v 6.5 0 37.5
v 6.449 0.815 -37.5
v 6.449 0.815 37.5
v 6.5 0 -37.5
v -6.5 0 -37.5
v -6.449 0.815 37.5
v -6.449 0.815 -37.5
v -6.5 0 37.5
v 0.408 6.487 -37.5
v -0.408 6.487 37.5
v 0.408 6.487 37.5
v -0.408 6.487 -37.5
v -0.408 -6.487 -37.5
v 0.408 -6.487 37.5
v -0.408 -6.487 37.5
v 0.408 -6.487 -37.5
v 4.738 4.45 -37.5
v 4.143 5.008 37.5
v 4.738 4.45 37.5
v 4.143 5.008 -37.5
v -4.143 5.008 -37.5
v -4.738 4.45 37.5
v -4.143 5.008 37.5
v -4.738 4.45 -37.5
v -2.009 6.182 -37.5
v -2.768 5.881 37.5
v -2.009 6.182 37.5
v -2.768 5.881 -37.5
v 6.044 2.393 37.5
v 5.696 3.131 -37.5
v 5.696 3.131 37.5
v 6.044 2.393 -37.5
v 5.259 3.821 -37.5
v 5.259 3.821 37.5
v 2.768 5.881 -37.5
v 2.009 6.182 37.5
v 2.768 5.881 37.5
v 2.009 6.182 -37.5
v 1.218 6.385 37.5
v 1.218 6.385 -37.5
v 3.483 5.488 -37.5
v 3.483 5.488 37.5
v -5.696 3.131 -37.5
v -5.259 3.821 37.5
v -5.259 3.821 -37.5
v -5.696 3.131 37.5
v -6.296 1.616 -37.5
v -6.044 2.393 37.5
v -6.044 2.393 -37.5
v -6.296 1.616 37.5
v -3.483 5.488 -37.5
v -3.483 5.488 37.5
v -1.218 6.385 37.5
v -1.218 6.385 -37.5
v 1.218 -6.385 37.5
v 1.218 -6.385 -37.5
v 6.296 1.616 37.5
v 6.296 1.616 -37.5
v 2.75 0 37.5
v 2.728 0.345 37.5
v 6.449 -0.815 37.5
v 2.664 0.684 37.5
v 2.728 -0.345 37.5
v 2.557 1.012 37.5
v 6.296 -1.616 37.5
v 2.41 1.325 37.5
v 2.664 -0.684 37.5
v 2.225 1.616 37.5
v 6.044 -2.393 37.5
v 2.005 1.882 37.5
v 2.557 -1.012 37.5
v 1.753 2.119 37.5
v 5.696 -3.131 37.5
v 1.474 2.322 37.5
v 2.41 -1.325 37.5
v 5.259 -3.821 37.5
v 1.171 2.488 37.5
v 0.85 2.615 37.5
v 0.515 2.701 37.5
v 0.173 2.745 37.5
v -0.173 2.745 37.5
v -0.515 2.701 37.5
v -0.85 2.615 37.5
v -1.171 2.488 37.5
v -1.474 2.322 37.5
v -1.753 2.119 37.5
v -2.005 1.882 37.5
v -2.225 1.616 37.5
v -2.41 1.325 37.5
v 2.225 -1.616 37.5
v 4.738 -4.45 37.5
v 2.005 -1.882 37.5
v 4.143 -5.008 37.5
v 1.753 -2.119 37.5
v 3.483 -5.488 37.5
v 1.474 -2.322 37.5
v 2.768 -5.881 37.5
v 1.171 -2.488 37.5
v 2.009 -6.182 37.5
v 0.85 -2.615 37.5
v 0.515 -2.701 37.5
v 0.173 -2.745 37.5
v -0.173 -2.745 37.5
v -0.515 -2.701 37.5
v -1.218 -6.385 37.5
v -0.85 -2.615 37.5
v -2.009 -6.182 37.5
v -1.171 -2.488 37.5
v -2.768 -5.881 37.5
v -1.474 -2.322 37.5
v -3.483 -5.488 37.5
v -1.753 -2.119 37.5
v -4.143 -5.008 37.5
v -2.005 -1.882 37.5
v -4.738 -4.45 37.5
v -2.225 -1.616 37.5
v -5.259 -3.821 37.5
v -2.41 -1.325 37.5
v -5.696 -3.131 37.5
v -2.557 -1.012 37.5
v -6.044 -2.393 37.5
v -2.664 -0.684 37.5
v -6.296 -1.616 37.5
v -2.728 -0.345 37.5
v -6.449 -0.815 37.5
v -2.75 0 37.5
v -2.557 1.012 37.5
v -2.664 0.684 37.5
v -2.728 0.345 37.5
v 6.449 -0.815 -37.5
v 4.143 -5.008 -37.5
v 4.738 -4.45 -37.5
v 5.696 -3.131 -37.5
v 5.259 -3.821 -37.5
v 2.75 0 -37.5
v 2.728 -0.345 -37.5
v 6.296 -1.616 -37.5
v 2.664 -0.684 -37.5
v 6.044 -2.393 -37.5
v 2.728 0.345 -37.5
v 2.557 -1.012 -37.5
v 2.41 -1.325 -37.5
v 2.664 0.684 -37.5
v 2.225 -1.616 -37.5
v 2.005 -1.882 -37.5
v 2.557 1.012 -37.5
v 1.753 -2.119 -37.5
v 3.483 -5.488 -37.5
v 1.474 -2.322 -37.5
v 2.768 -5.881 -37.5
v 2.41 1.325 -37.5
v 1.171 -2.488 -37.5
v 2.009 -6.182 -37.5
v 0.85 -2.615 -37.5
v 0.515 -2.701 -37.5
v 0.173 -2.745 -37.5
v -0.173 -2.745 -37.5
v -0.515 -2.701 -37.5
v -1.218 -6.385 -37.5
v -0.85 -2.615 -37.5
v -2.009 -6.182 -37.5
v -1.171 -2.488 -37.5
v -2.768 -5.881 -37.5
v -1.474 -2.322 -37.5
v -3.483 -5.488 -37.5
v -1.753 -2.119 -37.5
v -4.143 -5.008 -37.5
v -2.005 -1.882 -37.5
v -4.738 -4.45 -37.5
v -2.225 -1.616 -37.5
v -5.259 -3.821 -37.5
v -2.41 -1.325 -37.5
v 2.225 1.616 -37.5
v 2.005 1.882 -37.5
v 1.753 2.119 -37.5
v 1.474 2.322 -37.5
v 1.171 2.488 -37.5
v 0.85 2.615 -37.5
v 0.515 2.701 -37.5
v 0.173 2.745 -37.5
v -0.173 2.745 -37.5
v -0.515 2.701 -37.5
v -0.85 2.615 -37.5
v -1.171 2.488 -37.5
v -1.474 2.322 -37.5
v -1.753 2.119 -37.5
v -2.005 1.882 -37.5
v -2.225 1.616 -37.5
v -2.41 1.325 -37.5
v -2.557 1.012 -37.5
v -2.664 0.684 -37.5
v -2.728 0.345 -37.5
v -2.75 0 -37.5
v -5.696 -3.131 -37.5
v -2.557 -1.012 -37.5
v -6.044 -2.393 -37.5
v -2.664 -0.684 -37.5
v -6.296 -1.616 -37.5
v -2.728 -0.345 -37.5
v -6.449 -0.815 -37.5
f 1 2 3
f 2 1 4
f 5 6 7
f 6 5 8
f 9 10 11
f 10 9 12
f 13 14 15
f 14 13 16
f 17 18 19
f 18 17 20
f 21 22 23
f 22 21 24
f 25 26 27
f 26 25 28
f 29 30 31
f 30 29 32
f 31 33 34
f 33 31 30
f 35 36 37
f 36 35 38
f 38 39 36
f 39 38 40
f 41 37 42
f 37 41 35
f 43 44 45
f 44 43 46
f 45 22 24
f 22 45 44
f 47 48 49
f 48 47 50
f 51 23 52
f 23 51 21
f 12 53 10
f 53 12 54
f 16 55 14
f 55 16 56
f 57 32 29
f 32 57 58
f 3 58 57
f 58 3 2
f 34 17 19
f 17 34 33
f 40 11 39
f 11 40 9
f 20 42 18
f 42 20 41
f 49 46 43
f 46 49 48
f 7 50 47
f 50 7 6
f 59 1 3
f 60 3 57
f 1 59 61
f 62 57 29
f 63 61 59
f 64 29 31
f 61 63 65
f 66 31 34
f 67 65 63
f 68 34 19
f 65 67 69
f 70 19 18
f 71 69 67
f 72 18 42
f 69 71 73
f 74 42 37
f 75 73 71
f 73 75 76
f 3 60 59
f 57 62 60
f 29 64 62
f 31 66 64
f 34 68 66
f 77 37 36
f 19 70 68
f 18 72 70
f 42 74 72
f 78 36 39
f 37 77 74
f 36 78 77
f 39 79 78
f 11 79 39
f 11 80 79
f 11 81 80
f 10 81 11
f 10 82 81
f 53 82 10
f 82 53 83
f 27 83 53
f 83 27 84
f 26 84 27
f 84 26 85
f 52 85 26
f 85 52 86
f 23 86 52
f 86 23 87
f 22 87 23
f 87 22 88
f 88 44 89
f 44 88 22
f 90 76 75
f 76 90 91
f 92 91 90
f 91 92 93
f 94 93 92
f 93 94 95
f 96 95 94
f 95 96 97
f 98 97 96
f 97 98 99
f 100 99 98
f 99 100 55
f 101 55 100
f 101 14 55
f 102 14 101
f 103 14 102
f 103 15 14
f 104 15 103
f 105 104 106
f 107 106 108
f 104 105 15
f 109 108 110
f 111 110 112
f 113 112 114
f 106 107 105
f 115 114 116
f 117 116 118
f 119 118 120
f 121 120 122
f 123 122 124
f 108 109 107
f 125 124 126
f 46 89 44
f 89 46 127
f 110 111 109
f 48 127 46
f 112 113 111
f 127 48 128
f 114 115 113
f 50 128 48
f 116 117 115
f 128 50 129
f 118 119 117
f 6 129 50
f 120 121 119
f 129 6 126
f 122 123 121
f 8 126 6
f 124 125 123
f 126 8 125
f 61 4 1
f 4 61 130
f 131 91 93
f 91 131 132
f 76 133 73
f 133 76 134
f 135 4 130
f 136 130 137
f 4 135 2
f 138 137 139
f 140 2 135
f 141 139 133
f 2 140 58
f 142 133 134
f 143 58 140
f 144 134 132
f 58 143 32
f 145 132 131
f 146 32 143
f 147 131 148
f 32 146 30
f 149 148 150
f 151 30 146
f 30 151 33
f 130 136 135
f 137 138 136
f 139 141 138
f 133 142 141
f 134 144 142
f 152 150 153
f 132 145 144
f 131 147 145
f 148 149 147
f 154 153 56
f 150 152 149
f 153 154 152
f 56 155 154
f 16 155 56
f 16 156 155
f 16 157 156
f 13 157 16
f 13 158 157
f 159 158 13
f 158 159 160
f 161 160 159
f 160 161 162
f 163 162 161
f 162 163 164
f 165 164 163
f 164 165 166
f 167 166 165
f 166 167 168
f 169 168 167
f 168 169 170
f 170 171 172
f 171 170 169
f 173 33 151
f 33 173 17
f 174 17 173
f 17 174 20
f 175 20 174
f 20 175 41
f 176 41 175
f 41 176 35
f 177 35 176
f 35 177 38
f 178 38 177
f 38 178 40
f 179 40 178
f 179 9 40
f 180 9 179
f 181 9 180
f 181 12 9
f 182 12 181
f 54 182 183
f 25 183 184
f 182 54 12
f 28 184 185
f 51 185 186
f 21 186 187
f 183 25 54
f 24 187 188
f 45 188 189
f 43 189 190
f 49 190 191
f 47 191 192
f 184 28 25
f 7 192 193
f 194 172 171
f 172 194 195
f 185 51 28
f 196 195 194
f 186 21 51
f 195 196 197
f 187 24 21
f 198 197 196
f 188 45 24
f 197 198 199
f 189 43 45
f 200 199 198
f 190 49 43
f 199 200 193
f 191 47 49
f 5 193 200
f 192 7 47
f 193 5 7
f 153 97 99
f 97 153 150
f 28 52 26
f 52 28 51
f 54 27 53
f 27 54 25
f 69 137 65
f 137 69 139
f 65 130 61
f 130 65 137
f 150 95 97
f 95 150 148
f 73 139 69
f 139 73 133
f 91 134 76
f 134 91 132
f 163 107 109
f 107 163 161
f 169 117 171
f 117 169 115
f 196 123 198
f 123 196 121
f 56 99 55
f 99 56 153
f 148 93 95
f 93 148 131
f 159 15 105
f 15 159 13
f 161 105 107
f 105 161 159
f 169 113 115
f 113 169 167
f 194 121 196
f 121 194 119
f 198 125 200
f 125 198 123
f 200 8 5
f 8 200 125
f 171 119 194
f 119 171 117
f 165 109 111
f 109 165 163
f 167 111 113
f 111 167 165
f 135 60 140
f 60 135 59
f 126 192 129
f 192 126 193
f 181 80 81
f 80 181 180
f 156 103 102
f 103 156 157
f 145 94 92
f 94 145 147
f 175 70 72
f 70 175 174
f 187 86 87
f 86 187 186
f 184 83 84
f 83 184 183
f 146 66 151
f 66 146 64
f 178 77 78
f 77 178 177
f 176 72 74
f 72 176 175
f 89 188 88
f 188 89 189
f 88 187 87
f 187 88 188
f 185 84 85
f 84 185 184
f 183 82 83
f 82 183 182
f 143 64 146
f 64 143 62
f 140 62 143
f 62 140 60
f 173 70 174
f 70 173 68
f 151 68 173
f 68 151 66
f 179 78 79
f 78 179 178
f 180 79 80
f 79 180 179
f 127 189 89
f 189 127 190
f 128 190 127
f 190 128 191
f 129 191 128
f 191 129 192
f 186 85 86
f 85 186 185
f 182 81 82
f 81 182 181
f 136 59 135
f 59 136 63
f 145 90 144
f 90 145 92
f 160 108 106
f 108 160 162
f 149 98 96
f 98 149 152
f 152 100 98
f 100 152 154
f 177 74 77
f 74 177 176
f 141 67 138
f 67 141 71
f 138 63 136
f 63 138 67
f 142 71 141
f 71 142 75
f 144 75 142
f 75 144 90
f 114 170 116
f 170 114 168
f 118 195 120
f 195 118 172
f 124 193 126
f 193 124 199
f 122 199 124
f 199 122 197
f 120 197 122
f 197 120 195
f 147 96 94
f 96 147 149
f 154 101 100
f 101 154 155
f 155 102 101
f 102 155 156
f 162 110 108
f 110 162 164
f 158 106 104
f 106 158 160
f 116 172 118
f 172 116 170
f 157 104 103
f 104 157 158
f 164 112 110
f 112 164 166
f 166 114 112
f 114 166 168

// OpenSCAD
$fn = 50;


difference() {
	union() {
		translate(v = [0, 0, -37.5000000000]) {
			cylinder(h = 75, r = 6.5000000000);
		}
	}
	union() {
		translate(v = [0, 0, -100.0000000000]) {
			cylinder(h = 200, r = 2.7500000000);
		}
	}
}
